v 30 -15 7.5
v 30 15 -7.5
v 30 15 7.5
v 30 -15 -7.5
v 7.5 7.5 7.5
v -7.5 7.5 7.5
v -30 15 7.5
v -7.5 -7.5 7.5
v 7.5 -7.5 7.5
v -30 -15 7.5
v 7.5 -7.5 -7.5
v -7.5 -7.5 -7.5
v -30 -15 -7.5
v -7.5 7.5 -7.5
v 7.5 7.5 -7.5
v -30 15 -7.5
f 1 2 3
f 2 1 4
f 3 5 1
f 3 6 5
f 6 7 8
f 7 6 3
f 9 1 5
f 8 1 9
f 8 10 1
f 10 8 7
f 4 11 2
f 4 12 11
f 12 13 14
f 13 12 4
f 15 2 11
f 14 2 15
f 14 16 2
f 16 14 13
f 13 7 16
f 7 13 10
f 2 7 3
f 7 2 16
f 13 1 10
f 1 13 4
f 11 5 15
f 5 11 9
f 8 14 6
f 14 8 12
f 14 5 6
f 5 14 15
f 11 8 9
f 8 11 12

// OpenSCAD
// Define dimensions for the rectangular block
block_length = 60;  // Length of the block
block_width = 30;   // Width of the block
block_height = 15;  // Height of the block

// Define dimensions for the square hole
hole_size = 15;     // Side length of the square hole (adjusted to match the original model)

// Create the rectangular block with a square hole
difference() {
    // Main rectangular block
    cube([block_length, block_width, block_height], center = true);
    
    // Square hole
    translate([0, 0, 0])  // Center the hole perfectly
        cube([hole_size, hole_size, block_height * 2], center = true);
}
